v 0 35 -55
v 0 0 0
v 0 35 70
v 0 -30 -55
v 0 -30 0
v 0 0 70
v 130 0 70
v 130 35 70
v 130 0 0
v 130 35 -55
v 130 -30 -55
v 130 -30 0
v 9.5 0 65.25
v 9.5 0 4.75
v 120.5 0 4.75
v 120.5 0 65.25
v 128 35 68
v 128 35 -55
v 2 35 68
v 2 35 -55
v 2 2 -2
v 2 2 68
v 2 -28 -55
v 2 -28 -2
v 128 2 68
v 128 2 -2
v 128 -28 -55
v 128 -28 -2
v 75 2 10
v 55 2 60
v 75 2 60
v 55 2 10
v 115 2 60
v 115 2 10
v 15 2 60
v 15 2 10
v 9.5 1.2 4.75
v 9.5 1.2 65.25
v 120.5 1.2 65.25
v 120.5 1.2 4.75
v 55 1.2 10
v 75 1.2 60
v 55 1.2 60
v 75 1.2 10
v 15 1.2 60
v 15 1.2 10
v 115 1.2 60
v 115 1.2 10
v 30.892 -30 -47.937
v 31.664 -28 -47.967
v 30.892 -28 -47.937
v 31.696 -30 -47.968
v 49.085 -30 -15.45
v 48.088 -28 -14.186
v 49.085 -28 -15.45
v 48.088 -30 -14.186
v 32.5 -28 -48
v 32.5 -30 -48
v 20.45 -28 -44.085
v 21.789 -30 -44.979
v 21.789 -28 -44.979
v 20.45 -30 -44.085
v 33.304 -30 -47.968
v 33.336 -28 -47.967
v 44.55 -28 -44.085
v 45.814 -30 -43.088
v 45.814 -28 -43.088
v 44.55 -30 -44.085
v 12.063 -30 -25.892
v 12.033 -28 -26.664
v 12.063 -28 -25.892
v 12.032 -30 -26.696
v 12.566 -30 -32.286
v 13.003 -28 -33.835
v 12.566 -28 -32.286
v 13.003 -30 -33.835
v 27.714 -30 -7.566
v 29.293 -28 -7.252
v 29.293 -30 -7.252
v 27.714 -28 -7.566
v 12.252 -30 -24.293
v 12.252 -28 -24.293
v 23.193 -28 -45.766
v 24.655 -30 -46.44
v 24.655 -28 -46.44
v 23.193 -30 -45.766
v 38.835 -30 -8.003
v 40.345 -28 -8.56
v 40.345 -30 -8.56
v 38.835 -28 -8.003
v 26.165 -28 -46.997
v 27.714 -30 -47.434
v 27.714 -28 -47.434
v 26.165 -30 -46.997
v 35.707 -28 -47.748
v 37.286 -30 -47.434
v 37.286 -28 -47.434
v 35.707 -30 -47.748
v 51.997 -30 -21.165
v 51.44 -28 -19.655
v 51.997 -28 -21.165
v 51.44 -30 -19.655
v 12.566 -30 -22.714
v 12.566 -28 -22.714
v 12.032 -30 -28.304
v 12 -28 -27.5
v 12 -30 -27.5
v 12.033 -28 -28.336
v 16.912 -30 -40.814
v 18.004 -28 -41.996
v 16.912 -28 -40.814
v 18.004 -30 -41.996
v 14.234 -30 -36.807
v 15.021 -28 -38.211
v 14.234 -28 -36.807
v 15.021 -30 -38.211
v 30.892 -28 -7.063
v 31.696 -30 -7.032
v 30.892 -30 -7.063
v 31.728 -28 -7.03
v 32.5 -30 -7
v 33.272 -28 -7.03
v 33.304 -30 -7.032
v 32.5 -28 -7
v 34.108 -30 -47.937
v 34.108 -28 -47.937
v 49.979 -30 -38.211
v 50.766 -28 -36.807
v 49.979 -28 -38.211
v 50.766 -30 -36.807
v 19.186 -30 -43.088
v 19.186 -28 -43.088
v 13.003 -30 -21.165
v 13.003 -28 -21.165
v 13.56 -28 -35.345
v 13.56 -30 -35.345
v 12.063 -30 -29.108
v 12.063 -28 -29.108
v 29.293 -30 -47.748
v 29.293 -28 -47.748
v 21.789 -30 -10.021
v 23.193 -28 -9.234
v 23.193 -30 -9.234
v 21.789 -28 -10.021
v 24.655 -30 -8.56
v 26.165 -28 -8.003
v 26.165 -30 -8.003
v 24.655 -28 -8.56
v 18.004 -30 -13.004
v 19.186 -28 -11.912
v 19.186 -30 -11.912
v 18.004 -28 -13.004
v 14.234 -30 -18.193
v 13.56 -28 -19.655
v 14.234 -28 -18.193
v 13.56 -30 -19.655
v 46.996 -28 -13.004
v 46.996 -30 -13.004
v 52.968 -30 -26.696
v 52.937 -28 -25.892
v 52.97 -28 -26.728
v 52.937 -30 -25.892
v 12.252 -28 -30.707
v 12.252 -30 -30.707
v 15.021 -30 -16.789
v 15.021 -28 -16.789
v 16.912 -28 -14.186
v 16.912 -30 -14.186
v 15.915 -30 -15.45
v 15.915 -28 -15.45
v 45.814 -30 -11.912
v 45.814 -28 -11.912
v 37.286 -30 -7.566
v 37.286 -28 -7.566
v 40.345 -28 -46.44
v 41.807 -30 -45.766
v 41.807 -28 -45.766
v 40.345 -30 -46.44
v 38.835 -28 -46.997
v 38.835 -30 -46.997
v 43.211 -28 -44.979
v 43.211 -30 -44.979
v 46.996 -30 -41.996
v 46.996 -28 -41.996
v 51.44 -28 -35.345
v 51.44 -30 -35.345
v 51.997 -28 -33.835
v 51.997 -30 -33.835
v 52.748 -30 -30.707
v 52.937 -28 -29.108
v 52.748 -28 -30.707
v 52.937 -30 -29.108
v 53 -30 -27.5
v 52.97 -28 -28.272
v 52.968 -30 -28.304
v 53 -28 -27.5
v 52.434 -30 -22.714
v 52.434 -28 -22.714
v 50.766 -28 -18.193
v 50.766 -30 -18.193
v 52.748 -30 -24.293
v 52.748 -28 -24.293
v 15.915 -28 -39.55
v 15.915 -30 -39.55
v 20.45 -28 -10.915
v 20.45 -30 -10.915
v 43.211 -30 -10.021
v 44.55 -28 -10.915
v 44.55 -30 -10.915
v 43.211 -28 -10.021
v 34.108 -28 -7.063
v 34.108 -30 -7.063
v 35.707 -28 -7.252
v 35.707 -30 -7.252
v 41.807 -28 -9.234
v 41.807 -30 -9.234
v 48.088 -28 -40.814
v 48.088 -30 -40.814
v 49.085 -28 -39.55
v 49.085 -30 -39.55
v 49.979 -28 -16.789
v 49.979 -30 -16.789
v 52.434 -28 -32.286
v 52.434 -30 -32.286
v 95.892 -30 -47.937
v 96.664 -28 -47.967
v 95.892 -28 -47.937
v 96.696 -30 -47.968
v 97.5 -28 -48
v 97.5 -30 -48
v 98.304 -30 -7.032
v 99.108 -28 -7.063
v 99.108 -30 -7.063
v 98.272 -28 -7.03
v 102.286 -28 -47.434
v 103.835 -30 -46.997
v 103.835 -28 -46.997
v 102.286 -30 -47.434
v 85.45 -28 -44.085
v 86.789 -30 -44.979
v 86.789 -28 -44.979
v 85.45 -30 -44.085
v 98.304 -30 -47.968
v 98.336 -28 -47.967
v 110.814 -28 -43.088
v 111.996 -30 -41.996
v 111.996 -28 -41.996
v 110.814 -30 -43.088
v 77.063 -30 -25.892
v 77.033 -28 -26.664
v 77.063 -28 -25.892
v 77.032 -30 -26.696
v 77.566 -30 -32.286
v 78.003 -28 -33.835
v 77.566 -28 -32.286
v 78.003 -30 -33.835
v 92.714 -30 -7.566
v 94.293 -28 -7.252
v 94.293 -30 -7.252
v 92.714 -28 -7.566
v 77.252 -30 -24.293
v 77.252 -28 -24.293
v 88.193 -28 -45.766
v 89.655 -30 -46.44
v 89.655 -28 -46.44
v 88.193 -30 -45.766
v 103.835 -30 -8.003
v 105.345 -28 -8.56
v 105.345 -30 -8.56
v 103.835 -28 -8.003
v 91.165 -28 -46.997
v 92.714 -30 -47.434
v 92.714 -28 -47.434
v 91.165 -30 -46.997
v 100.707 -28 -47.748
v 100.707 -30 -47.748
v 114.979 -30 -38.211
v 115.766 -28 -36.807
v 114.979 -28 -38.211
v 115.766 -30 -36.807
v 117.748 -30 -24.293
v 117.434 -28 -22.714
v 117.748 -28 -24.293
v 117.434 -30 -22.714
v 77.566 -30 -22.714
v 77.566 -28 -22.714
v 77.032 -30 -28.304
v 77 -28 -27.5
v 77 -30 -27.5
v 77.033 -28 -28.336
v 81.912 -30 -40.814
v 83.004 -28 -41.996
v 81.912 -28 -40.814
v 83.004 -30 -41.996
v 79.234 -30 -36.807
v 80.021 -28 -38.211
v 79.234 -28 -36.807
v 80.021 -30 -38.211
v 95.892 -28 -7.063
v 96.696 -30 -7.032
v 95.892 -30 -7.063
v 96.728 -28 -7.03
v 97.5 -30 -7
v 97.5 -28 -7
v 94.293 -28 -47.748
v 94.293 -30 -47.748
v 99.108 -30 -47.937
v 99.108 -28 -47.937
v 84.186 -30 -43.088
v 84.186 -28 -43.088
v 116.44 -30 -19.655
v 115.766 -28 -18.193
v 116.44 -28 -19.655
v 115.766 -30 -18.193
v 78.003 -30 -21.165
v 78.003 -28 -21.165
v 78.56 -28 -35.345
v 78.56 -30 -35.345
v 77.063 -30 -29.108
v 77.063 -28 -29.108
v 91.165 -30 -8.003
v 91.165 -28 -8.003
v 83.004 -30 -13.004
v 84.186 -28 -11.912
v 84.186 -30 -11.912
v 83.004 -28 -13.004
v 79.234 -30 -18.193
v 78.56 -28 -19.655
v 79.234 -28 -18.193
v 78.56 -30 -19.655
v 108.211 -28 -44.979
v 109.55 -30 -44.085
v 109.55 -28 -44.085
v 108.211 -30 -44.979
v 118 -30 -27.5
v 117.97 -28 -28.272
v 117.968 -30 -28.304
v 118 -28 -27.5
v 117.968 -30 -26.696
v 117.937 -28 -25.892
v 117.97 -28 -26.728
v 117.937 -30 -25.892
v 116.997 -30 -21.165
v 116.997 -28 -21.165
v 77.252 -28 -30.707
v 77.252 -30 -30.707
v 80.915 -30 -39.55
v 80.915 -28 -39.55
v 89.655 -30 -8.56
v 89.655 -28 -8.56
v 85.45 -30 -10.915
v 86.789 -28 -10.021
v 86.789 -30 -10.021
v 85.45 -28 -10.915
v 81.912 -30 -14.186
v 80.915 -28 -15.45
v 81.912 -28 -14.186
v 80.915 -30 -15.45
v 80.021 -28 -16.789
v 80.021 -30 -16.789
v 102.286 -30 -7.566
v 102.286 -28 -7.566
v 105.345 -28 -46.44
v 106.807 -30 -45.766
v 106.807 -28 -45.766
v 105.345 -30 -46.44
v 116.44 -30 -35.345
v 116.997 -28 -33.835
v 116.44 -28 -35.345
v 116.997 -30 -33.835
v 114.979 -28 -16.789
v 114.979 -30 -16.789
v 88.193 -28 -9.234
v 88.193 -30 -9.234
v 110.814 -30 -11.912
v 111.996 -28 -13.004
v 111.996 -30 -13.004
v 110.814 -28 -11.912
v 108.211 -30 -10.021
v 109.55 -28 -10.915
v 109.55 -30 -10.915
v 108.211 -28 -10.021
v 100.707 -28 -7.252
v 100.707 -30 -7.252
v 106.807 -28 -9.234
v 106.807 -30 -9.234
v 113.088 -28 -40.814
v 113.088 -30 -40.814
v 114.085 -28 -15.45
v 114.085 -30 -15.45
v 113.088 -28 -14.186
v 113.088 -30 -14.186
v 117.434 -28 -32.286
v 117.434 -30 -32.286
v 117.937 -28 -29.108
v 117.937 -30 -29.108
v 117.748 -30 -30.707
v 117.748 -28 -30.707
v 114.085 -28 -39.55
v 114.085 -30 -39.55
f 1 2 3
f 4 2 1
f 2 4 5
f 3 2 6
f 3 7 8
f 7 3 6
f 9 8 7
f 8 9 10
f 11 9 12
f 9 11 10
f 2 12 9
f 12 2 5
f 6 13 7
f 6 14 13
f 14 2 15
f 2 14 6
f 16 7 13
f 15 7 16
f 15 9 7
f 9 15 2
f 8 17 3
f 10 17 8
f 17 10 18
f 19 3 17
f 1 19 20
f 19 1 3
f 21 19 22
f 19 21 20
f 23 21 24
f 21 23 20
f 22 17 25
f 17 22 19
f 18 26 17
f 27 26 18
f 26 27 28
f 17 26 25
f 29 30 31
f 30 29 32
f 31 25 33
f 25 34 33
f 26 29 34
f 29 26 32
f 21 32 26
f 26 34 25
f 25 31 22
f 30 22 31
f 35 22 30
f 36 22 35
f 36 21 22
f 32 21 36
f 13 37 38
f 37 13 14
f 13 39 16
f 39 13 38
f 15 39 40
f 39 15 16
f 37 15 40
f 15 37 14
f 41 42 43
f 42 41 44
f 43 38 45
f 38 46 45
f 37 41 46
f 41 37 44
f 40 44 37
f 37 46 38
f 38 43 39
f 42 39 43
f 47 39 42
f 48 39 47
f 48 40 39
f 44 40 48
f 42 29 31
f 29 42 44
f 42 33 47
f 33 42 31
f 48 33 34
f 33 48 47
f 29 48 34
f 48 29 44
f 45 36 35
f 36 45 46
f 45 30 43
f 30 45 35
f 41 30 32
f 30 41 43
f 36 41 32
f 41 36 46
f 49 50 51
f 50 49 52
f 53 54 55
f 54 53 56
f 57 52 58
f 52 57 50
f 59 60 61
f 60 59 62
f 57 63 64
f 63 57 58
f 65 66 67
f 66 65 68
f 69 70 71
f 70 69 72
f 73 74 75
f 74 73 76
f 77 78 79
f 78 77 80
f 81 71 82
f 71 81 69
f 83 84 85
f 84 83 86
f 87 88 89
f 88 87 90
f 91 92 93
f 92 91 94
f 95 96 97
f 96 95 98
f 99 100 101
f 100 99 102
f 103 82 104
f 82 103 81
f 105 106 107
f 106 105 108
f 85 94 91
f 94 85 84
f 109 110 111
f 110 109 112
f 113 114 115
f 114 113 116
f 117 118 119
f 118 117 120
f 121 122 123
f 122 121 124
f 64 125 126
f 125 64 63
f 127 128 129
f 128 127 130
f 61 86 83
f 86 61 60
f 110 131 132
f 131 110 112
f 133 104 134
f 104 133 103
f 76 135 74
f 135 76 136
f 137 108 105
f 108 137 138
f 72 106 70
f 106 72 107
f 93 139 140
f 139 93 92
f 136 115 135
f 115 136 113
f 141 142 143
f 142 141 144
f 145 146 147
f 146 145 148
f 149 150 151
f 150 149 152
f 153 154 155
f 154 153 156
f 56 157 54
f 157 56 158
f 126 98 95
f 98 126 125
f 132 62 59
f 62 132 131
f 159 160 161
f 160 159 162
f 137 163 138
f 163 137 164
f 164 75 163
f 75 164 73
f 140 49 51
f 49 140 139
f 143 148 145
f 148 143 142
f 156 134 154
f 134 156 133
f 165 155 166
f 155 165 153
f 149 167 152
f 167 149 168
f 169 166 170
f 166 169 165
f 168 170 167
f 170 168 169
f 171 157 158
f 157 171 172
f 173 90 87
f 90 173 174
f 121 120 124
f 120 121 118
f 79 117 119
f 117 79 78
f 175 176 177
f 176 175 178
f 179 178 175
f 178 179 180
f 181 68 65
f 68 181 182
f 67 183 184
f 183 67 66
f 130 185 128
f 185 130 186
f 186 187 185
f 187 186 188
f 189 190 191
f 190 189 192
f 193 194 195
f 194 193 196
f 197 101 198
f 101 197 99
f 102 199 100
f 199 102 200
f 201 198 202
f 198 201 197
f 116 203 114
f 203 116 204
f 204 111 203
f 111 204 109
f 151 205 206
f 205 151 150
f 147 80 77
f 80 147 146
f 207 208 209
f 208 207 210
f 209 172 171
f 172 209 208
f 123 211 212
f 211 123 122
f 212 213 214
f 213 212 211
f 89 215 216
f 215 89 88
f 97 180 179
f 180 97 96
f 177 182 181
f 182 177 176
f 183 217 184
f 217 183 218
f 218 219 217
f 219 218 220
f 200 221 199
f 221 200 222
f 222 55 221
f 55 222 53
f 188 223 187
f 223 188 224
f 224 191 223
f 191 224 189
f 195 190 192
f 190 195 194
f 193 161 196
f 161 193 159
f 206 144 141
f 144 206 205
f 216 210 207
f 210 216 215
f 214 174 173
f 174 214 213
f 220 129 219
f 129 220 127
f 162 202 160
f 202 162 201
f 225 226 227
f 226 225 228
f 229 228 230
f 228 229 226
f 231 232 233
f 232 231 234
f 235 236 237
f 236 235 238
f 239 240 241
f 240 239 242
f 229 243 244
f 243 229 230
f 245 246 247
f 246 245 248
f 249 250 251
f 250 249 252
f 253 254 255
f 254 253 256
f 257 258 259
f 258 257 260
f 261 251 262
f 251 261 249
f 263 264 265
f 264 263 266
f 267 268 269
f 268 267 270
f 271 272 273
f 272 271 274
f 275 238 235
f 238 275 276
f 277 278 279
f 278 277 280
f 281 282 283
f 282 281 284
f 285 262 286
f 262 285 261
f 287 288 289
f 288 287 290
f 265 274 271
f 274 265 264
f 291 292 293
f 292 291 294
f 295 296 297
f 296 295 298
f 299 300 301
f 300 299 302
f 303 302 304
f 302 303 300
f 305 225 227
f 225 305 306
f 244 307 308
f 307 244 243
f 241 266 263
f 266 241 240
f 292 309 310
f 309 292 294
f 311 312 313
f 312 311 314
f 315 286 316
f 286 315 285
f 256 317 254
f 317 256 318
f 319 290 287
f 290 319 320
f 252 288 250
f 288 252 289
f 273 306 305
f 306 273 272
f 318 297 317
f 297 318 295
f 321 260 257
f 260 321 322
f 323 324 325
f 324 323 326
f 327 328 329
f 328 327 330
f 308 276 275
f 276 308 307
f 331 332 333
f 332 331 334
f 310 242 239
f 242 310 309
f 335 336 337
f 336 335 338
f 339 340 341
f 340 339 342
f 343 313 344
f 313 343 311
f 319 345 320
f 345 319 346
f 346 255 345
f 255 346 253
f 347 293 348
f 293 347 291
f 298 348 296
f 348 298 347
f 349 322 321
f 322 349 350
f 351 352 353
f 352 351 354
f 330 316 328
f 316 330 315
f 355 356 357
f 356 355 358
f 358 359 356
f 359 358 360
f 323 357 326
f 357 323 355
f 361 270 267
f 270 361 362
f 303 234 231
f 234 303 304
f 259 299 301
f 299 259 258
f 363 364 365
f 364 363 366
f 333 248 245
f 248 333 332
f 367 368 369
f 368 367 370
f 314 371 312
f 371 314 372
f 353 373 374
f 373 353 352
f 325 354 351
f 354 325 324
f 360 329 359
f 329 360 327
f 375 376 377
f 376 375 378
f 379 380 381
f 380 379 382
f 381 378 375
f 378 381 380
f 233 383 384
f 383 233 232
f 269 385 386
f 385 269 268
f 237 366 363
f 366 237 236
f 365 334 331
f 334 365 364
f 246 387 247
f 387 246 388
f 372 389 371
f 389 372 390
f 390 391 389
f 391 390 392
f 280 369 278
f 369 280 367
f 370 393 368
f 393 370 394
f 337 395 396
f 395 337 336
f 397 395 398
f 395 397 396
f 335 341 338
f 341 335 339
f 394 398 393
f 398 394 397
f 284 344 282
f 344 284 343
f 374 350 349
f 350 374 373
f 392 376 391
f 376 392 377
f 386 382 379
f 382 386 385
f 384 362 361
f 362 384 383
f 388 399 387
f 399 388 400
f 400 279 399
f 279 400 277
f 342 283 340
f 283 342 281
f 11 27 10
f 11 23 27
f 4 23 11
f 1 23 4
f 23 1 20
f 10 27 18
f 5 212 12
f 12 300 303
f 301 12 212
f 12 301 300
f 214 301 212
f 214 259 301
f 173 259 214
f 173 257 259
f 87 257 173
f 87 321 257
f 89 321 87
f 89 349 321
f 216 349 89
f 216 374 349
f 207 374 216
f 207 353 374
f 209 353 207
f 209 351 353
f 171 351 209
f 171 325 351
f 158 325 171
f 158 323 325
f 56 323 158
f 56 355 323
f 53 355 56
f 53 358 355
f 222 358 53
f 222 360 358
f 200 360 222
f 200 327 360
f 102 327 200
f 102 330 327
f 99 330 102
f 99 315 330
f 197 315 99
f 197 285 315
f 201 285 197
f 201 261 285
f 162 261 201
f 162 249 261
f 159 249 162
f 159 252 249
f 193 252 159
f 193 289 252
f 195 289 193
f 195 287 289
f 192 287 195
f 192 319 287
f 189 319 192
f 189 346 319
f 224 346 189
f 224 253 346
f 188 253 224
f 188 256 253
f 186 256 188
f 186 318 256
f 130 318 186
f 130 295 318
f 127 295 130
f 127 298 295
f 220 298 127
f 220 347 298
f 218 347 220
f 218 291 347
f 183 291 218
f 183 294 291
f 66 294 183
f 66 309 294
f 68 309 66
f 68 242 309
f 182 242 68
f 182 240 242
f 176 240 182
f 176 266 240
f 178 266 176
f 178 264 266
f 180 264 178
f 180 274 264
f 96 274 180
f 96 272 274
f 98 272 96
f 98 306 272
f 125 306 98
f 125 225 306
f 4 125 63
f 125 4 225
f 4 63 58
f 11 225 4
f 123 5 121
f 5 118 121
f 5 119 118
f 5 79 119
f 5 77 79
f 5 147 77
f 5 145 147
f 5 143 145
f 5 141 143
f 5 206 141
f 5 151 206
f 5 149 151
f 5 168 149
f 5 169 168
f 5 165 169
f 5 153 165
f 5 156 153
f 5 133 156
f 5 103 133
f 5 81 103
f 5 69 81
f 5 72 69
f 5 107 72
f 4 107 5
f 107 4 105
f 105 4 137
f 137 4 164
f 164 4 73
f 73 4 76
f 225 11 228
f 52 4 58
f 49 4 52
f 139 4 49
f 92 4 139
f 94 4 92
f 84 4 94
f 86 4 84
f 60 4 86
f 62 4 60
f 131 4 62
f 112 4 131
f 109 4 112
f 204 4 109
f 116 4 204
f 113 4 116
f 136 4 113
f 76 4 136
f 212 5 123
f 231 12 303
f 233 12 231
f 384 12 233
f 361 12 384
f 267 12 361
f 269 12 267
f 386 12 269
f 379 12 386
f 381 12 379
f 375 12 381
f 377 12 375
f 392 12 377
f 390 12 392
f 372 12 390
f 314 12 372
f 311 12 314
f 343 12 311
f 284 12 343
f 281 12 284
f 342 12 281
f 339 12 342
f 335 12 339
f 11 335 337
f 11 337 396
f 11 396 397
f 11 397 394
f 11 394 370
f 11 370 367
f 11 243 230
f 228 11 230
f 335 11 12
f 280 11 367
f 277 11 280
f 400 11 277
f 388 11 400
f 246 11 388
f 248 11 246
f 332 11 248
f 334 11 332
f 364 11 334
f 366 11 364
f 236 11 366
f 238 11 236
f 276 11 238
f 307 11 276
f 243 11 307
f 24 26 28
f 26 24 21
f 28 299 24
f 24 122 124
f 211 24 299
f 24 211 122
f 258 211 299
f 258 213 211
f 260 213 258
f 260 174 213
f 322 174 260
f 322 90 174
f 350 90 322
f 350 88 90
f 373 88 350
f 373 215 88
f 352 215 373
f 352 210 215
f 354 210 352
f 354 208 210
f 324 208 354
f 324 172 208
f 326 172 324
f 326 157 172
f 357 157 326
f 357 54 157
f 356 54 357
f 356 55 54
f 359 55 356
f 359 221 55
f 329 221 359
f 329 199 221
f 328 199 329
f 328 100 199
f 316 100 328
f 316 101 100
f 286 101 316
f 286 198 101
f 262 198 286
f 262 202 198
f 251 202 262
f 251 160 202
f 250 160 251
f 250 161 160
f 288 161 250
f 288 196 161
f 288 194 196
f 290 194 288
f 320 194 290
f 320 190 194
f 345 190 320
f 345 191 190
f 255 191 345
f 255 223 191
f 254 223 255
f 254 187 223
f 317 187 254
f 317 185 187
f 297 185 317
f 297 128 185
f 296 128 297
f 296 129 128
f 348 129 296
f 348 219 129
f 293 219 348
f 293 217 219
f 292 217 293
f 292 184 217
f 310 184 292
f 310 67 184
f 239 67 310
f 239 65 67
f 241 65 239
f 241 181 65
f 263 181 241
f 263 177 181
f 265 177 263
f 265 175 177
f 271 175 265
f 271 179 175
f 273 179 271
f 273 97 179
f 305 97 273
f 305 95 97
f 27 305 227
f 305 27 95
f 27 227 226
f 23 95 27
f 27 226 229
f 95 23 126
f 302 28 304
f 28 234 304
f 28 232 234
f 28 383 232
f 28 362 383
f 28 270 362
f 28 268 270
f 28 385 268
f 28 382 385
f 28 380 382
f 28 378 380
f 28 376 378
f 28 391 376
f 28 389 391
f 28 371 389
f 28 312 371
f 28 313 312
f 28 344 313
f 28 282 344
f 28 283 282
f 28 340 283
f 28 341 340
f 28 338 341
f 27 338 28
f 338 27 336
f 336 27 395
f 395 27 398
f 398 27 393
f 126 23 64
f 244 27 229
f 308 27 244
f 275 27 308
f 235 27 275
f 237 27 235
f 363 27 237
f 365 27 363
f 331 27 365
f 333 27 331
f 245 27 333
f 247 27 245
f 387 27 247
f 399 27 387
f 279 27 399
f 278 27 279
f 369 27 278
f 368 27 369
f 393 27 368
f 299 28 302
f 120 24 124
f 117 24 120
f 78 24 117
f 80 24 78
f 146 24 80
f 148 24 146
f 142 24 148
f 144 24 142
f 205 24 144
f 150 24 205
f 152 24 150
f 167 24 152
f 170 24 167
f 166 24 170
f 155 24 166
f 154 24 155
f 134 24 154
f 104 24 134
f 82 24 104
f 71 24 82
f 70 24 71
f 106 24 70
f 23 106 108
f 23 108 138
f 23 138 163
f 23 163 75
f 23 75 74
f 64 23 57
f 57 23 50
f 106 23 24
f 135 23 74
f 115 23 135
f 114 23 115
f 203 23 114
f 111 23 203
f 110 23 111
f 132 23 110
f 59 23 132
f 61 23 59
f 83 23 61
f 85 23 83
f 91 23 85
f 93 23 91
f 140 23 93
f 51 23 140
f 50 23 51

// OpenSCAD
$fn=80;

module topbox() {
    difference() {
        cube([130,  35, 70]);
        translate([2, 2, 0]) {
            cube([126, 35, 68]);
        }
        translate([9.5, 0, 4.75]) {
            cube([55.5 * 2, 1.2, 60.5]);
        }
        translate([75, 0, 40/ 4]) {
            cube([40, 3, 50]);
        }
        translate([15, 0, 40/ 4]) {
            cube([40, 3, 50]);
        }
    }
}

module middlebox() {
    difference() {
        translate([0, -30, -55]) {
            cube([130, 65, 55]);
        }
        translate([2, -28, -55]) {
             cube([126, 63, 53]);
        }
        translate([2, 2, -2]) {
            cube([126, 35, 3]);
        }
        translate([0, -30, -55]) {
            translate([(130/4)*1, 0, 55/2]){
                rotate([0, 90, 90]) cylinder(r=20.5, h=100,  center=true);
            }
            translate([(130/4)*3, 0, 55/2]){
                rotate([0, 90, 90]) cylinder(r=20.5, h=100,  center=true);
            }
        }
    }
}


union() {
    topbox();
    middlebox();
}
